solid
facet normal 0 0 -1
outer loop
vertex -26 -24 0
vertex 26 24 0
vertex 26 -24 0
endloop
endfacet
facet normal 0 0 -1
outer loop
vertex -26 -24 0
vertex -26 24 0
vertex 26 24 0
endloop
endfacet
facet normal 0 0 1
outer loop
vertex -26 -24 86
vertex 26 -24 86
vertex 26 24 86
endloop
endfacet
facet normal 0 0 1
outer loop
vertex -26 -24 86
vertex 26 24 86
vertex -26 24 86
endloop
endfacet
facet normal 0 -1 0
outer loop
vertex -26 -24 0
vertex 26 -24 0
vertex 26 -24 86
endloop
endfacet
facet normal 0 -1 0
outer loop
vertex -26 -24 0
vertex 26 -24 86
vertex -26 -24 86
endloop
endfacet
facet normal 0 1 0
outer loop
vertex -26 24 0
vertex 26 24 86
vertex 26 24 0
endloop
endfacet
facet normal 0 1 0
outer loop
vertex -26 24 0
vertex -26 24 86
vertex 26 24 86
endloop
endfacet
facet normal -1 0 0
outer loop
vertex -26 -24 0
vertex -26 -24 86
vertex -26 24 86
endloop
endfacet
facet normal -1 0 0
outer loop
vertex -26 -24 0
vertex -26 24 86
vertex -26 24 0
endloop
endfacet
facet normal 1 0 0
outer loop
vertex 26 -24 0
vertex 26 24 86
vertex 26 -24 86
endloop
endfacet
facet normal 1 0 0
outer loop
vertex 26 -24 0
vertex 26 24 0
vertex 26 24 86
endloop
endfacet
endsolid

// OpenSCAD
// Gemini 4 Argon Parametric OpenSCAD — PRT-05: Compliant Z-Axis Micropipette Barrel Clamp
$fn = 64;
translate([-26.00, -24.00, 0])
  cube([52, 48, 86]);
